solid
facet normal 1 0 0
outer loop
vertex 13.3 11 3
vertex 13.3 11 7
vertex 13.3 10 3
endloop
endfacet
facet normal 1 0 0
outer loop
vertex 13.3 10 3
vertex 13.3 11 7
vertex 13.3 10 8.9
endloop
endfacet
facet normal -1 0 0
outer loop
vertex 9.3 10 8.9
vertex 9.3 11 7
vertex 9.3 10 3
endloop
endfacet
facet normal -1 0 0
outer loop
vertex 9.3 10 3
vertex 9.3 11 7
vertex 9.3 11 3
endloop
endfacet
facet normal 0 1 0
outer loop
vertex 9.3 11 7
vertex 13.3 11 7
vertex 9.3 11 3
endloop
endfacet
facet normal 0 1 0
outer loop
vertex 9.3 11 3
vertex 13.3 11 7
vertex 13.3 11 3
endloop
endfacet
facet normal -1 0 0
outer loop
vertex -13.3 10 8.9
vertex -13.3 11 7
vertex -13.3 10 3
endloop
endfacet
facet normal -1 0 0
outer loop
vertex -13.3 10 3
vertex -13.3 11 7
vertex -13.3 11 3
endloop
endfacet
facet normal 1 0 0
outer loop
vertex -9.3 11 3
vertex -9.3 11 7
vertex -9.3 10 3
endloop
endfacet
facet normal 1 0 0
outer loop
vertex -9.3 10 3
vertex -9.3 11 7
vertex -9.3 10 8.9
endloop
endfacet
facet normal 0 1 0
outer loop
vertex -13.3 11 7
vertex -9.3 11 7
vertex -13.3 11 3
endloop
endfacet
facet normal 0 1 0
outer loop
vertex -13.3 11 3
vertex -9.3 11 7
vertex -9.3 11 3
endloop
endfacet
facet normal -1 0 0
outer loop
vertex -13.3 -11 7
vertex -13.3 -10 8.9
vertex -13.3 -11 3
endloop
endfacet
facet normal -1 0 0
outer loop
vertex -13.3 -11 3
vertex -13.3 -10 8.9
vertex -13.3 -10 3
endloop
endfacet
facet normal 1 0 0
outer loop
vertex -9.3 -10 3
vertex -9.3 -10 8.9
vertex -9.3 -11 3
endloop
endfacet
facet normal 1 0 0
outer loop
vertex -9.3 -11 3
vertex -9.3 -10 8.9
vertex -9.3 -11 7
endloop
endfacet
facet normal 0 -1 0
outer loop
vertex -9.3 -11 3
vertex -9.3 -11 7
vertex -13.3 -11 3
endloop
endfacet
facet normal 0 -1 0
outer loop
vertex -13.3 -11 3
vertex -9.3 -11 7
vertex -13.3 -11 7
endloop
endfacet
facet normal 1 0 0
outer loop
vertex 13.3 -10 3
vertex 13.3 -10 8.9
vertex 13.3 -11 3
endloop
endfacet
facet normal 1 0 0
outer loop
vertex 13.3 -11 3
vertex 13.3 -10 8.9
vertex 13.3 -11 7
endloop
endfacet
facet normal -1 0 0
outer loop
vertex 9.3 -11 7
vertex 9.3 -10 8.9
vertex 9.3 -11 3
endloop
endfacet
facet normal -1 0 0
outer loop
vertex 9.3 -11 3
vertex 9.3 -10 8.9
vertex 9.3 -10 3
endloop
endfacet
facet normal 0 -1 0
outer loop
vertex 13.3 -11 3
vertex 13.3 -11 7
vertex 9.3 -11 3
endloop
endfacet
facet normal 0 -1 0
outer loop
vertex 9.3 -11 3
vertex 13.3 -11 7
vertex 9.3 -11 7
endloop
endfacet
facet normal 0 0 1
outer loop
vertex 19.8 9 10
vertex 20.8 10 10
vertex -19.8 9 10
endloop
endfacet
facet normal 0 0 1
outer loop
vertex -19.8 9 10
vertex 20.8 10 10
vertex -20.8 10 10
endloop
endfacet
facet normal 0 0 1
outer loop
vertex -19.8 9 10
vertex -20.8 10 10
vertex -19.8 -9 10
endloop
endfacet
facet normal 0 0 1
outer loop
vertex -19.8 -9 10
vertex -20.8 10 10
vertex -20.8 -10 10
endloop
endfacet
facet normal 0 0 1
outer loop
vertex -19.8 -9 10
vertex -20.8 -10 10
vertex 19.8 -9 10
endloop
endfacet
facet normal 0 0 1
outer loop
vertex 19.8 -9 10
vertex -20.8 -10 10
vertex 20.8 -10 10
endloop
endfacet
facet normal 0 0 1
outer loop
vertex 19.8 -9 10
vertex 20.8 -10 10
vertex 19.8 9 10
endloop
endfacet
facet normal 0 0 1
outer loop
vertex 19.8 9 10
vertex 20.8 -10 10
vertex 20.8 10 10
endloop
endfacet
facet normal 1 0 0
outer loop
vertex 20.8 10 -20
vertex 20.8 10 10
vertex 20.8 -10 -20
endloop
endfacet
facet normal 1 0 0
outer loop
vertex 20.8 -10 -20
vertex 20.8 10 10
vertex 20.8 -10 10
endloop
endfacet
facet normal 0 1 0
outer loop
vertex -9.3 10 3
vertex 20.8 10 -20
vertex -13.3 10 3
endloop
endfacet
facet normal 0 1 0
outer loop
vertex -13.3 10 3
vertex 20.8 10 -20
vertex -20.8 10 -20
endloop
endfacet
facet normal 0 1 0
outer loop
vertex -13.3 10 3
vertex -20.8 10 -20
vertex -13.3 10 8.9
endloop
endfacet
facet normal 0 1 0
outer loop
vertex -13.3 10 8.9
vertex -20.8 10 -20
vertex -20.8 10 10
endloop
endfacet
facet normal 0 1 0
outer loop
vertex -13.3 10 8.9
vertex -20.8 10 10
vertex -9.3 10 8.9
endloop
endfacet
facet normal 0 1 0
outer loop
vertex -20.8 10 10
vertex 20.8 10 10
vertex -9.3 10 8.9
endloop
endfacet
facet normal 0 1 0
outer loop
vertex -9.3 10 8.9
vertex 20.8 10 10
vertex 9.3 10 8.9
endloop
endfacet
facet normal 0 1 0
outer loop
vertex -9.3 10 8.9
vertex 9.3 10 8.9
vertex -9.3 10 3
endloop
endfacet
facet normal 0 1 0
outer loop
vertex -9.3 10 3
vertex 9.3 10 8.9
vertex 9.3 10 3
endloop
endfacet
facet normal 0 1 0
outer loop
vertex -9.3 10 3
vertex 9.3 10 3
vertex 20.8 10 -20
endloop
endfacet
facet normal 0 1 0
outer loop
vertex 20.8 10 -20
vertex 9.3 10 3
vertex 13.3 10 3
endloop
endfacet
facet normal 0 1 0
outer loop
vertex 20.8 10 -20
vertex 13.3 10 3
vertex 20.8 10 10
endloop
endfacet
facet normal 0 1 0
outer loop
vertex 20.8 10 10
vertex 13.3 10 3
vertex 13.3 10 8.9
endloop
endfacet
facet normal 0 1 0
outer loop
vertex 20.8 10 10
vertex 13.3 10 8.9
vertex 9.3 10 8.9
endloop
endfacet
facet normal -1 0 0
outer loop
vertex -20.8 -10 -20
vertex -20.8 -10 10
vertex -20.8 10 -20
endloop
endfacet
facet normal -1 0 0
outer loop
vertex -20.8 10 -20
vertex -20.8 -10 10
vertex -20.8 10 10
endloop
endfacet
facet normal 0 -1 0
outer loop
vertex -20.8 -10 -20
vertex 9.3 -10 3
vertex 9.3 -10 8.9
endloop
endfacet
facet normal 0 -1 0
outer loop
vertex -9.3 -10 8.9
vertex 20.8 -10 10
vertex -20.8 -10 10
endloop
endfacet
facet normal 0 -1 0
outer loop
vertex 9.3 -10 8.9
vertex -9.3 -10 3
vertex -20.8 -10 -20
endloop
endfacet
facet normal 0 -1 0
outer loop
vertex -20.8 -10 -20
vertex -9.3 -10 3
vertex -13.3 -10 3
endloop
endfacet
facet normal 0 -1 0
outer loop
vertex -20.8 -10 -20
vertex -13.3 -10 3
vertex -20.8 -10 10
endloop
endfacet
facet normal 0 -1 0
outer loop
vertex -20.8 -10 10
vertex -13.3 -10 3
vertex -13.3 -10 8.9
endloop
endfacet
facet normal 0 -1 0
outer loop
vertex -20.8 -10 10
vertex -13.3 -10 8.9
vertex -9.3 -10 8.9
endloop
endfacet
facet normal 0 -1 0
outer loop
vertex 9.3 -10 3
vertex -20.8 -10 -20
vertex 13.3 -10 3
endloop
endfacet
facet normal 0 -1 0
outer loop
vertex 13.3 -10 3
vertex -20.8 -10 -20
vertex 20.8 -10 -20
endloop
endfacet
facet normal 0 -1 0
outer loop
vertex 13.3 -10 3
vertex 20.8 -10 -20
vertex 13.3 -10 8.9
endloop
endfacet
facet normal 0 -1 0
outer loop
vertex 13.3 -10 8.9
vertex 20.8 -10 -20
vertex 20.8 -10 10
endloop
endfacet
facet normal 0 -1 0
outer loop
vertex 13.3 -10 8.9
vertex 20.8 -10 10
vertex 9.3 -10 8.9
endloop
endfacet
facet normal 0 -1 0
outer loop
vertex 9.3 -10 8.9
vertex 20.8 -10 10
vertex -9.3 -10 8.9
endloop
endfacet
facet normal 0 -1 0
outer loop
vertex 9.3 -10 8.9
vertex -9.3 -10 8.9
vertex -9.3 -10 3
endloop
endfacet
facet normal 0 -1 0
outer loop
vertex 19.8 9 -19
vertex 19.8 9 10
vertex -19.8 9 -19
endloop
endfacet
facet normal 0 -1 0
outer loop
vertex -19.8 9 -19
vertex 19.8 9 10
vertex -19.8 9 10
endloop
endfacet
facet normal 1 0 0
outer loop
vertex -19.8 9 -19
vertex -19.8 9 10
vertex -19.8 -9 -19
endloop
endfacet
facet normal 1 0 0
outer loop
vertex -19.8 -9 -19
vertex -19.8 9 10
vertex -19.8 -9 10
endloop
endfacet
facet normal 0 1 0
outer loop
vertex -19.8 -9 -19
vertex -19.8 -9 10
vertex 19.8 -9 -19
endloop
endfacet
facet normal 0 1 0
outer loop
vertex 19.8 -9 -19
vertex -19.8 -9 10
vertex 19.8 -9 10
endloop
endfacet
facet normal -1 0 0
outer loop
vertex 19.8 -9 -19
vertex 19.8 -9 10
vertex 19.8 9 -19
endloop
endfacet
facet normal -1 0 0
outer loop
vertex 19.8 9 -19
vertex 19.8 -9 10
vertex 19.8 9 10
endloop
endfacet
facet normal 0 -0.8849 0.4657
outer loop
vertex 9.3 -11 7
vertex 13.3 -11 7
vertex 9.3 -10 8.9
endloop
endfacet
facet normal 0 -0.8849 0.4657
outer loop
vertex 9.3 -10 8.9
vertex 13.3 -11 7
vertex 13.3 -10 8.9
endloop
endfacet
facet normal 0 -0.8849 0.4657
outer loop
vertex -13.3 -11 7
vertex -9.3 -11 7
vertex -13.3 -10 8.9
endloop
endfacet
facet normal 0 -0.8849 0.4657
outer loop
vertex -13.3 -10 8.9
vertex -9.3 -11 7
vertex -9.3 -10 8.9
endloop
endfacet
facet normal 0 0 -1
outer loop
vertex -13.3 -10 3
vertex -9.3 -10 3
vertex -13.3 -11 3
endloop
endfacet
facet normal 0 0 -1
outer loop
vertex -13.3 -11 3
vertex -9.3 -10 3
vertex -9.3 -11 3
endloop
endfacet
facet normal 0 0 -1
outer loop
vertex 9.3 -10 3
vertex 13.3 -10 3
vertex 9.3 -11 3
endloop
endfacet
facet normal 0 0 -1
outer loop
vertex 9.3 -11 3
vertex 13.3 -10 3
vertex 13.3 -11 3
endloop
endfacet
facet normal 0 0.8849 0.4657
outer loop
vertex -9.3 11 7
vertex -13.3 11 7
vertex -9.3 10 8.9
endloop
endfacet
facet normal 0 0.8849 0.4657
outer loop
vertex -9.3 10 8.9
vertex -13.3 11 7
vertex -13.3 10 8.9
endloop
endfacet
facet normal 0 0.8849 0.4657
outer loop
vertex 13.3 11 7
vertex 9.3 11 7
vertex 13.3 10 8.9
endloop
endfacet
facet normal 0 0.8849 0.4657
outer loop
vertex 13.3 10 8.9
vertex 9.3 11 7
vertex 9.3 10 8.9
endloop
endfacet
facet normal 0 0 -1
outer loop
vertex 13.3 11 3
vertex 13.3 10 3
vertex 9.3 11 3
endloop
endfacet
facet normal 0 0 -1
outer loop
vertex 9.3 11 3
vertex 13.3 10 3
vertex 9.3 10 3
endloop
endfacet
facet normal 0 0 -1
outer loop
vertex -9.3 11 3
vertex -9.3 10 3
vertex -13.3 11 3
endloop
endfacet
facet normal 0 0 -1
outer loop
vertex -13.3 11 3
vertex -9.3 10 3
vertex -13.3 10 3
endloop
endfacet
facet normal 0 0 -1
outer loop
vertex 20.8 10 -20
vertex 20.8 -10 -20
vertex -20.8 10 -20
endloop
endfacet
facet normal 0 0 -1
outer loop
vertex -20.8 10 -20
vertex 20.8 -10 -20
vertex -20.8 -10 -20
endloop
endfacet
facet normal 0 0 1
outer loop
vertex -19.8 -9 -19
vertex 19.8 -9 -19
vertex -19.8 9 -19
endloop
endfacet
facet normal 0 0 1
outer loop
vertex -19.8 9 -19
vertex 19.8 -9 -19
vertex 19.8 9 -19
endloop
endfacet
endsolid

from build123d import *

# Parameters (mm, degrees)
SKETCH1_W           = 41.6
SKETCH1_H           = 20
SKETCH1_W_2         = 39.6
SKETCH1_H_2         = 18
BOSS_EXTRUDE2_DEPTH = 10
SKETCH2_W           = 4
SKETCH2_H           = 10
BOSS_EXTRUDE3_DEPTH = 1
SKETCH3_W           = 3
SKETCH3_H           = 1
CUT_EXTRUDE1_DEPTH  = 27
SKETCH4_W           = 4
SKETCH4_H           = 10
BOSS_EXTRUDE4_DEPTH = 1
SKETCH5_W           = 3
SKETCH5_H           = 1
CUT_EXTRUDE2_DEPTH  = 27
SKETCH6_W           = 41.6
SKETCH6_H           = 20
SKETCH6_W_2         = 39.6
SKETCH6_H_2         = 18
BOSS_EXTRUDE6_DEPTH = 19
SKETCH7_W           = 41.6
SKETCH7_H           = 20
BOSS_EXTRUDE7_DEPTH = 1


with BuildPart() as part:
    # Sketch1 → Boss-Extrude2 (new body)
    with BuildSketch(Plane.XY):
        Rectangle(SKETCH1_W, SKETCH1_H)
        Rectangle(SKETCH1_W_2, SKETCH1_H_2, mode=Mode.SUBTRACT)
    extrude(amount=BOSS_EXTRUDE2_DEPTH)

    # Sketch2 → Boss-Extrude3 (add)
    with BuildSketch(Plane.XZ.offset(10)):
        with Locations((-11.3, 5)):
            Rectangle(SKETCH2_W, SKETCH2_H)
        with Locations((11.3, 5)):
            Rectangle(SKETCH2_W, SKETCH2_H)
    extrude(amount=BOSS_EXTRUDE3_DEPTH)

    # Sketch3 → Cut-Extrude1 (cut)
    with BuildSketch(Plane.ZY.offset(13.3)):
        Polygon((8.900149248, -10), (7, -11), (10, -11), (10, -10), align=None)
        with Locations((1.5, -10.5)):
            Rectangle(SKETCH3_W, SKETCH3_H)
    extrude(amount=-CUT_EXTRUDE1_DEPTH, mode=Mode.SUBTRACT)

    # Sketch4 → Boss-Extrude4 (add)
    with BuildSketch(Plane(origin=(0, 10, 0), x_dir=(1, 0, 0), z_dir=(0, 1, 0))):
        with Locations((11.3, -5)):
            Rectangle(SKETCH4_W, SKETCH4_H)
        with Locations((-11.3, -5)):
            Rectangle(SKETCH4_W, SKETCH4_H)
    extrude(amount=BOSS_EXTRUDE4_DEPTH)

    # Sketch5 → Cut-Extrude2 (cut)
    with BuildSketch(Plane(origin=(13.3, 0, 0), x_dir=(0, 0, -1), z_dir=(1, 0, 0))):
        Polygon((-7, 11), (-10, 11), (-10, 10), (-8.900149248, 10), align=None)
        with Locations((-1.5, 10.5)):
            Rectangle(SKETCH5_W, SKETCH5_H)
    extrude(amount=-CUT_EXTRUDE2_DEPTH, mode=Mode.SUBTRACT)

    # Sketch6 → Boss-Extrude6 (add)
    with BuildSketch(Plane(origin=(0, 0, 0), x_dir=(-1, 0, 0), z_dir=(0, 0, -1))):
        Rectangle(SKETCH6_W, SKETCH6_H)
        Rectangle(SKETCH6_W_2, SKETCH6_H_2, mode=Mode.SUBTRACT)
    extrude(amount=BOSS_EXTRUDE6_DEPTH)

    # Sketch7 → Boss-Extrude7 (add)
    with BuildSketch(Plane(origin=(0, 0, -19), x_dir=(-1, 0, 0), z_dir=(0, 0, -1))):
        Rectangle(SKETCH7_W, SKETCH7_H)
    extrude(amount=BOSS_EXTRUDE7_DEPTH)


solid = part.part
